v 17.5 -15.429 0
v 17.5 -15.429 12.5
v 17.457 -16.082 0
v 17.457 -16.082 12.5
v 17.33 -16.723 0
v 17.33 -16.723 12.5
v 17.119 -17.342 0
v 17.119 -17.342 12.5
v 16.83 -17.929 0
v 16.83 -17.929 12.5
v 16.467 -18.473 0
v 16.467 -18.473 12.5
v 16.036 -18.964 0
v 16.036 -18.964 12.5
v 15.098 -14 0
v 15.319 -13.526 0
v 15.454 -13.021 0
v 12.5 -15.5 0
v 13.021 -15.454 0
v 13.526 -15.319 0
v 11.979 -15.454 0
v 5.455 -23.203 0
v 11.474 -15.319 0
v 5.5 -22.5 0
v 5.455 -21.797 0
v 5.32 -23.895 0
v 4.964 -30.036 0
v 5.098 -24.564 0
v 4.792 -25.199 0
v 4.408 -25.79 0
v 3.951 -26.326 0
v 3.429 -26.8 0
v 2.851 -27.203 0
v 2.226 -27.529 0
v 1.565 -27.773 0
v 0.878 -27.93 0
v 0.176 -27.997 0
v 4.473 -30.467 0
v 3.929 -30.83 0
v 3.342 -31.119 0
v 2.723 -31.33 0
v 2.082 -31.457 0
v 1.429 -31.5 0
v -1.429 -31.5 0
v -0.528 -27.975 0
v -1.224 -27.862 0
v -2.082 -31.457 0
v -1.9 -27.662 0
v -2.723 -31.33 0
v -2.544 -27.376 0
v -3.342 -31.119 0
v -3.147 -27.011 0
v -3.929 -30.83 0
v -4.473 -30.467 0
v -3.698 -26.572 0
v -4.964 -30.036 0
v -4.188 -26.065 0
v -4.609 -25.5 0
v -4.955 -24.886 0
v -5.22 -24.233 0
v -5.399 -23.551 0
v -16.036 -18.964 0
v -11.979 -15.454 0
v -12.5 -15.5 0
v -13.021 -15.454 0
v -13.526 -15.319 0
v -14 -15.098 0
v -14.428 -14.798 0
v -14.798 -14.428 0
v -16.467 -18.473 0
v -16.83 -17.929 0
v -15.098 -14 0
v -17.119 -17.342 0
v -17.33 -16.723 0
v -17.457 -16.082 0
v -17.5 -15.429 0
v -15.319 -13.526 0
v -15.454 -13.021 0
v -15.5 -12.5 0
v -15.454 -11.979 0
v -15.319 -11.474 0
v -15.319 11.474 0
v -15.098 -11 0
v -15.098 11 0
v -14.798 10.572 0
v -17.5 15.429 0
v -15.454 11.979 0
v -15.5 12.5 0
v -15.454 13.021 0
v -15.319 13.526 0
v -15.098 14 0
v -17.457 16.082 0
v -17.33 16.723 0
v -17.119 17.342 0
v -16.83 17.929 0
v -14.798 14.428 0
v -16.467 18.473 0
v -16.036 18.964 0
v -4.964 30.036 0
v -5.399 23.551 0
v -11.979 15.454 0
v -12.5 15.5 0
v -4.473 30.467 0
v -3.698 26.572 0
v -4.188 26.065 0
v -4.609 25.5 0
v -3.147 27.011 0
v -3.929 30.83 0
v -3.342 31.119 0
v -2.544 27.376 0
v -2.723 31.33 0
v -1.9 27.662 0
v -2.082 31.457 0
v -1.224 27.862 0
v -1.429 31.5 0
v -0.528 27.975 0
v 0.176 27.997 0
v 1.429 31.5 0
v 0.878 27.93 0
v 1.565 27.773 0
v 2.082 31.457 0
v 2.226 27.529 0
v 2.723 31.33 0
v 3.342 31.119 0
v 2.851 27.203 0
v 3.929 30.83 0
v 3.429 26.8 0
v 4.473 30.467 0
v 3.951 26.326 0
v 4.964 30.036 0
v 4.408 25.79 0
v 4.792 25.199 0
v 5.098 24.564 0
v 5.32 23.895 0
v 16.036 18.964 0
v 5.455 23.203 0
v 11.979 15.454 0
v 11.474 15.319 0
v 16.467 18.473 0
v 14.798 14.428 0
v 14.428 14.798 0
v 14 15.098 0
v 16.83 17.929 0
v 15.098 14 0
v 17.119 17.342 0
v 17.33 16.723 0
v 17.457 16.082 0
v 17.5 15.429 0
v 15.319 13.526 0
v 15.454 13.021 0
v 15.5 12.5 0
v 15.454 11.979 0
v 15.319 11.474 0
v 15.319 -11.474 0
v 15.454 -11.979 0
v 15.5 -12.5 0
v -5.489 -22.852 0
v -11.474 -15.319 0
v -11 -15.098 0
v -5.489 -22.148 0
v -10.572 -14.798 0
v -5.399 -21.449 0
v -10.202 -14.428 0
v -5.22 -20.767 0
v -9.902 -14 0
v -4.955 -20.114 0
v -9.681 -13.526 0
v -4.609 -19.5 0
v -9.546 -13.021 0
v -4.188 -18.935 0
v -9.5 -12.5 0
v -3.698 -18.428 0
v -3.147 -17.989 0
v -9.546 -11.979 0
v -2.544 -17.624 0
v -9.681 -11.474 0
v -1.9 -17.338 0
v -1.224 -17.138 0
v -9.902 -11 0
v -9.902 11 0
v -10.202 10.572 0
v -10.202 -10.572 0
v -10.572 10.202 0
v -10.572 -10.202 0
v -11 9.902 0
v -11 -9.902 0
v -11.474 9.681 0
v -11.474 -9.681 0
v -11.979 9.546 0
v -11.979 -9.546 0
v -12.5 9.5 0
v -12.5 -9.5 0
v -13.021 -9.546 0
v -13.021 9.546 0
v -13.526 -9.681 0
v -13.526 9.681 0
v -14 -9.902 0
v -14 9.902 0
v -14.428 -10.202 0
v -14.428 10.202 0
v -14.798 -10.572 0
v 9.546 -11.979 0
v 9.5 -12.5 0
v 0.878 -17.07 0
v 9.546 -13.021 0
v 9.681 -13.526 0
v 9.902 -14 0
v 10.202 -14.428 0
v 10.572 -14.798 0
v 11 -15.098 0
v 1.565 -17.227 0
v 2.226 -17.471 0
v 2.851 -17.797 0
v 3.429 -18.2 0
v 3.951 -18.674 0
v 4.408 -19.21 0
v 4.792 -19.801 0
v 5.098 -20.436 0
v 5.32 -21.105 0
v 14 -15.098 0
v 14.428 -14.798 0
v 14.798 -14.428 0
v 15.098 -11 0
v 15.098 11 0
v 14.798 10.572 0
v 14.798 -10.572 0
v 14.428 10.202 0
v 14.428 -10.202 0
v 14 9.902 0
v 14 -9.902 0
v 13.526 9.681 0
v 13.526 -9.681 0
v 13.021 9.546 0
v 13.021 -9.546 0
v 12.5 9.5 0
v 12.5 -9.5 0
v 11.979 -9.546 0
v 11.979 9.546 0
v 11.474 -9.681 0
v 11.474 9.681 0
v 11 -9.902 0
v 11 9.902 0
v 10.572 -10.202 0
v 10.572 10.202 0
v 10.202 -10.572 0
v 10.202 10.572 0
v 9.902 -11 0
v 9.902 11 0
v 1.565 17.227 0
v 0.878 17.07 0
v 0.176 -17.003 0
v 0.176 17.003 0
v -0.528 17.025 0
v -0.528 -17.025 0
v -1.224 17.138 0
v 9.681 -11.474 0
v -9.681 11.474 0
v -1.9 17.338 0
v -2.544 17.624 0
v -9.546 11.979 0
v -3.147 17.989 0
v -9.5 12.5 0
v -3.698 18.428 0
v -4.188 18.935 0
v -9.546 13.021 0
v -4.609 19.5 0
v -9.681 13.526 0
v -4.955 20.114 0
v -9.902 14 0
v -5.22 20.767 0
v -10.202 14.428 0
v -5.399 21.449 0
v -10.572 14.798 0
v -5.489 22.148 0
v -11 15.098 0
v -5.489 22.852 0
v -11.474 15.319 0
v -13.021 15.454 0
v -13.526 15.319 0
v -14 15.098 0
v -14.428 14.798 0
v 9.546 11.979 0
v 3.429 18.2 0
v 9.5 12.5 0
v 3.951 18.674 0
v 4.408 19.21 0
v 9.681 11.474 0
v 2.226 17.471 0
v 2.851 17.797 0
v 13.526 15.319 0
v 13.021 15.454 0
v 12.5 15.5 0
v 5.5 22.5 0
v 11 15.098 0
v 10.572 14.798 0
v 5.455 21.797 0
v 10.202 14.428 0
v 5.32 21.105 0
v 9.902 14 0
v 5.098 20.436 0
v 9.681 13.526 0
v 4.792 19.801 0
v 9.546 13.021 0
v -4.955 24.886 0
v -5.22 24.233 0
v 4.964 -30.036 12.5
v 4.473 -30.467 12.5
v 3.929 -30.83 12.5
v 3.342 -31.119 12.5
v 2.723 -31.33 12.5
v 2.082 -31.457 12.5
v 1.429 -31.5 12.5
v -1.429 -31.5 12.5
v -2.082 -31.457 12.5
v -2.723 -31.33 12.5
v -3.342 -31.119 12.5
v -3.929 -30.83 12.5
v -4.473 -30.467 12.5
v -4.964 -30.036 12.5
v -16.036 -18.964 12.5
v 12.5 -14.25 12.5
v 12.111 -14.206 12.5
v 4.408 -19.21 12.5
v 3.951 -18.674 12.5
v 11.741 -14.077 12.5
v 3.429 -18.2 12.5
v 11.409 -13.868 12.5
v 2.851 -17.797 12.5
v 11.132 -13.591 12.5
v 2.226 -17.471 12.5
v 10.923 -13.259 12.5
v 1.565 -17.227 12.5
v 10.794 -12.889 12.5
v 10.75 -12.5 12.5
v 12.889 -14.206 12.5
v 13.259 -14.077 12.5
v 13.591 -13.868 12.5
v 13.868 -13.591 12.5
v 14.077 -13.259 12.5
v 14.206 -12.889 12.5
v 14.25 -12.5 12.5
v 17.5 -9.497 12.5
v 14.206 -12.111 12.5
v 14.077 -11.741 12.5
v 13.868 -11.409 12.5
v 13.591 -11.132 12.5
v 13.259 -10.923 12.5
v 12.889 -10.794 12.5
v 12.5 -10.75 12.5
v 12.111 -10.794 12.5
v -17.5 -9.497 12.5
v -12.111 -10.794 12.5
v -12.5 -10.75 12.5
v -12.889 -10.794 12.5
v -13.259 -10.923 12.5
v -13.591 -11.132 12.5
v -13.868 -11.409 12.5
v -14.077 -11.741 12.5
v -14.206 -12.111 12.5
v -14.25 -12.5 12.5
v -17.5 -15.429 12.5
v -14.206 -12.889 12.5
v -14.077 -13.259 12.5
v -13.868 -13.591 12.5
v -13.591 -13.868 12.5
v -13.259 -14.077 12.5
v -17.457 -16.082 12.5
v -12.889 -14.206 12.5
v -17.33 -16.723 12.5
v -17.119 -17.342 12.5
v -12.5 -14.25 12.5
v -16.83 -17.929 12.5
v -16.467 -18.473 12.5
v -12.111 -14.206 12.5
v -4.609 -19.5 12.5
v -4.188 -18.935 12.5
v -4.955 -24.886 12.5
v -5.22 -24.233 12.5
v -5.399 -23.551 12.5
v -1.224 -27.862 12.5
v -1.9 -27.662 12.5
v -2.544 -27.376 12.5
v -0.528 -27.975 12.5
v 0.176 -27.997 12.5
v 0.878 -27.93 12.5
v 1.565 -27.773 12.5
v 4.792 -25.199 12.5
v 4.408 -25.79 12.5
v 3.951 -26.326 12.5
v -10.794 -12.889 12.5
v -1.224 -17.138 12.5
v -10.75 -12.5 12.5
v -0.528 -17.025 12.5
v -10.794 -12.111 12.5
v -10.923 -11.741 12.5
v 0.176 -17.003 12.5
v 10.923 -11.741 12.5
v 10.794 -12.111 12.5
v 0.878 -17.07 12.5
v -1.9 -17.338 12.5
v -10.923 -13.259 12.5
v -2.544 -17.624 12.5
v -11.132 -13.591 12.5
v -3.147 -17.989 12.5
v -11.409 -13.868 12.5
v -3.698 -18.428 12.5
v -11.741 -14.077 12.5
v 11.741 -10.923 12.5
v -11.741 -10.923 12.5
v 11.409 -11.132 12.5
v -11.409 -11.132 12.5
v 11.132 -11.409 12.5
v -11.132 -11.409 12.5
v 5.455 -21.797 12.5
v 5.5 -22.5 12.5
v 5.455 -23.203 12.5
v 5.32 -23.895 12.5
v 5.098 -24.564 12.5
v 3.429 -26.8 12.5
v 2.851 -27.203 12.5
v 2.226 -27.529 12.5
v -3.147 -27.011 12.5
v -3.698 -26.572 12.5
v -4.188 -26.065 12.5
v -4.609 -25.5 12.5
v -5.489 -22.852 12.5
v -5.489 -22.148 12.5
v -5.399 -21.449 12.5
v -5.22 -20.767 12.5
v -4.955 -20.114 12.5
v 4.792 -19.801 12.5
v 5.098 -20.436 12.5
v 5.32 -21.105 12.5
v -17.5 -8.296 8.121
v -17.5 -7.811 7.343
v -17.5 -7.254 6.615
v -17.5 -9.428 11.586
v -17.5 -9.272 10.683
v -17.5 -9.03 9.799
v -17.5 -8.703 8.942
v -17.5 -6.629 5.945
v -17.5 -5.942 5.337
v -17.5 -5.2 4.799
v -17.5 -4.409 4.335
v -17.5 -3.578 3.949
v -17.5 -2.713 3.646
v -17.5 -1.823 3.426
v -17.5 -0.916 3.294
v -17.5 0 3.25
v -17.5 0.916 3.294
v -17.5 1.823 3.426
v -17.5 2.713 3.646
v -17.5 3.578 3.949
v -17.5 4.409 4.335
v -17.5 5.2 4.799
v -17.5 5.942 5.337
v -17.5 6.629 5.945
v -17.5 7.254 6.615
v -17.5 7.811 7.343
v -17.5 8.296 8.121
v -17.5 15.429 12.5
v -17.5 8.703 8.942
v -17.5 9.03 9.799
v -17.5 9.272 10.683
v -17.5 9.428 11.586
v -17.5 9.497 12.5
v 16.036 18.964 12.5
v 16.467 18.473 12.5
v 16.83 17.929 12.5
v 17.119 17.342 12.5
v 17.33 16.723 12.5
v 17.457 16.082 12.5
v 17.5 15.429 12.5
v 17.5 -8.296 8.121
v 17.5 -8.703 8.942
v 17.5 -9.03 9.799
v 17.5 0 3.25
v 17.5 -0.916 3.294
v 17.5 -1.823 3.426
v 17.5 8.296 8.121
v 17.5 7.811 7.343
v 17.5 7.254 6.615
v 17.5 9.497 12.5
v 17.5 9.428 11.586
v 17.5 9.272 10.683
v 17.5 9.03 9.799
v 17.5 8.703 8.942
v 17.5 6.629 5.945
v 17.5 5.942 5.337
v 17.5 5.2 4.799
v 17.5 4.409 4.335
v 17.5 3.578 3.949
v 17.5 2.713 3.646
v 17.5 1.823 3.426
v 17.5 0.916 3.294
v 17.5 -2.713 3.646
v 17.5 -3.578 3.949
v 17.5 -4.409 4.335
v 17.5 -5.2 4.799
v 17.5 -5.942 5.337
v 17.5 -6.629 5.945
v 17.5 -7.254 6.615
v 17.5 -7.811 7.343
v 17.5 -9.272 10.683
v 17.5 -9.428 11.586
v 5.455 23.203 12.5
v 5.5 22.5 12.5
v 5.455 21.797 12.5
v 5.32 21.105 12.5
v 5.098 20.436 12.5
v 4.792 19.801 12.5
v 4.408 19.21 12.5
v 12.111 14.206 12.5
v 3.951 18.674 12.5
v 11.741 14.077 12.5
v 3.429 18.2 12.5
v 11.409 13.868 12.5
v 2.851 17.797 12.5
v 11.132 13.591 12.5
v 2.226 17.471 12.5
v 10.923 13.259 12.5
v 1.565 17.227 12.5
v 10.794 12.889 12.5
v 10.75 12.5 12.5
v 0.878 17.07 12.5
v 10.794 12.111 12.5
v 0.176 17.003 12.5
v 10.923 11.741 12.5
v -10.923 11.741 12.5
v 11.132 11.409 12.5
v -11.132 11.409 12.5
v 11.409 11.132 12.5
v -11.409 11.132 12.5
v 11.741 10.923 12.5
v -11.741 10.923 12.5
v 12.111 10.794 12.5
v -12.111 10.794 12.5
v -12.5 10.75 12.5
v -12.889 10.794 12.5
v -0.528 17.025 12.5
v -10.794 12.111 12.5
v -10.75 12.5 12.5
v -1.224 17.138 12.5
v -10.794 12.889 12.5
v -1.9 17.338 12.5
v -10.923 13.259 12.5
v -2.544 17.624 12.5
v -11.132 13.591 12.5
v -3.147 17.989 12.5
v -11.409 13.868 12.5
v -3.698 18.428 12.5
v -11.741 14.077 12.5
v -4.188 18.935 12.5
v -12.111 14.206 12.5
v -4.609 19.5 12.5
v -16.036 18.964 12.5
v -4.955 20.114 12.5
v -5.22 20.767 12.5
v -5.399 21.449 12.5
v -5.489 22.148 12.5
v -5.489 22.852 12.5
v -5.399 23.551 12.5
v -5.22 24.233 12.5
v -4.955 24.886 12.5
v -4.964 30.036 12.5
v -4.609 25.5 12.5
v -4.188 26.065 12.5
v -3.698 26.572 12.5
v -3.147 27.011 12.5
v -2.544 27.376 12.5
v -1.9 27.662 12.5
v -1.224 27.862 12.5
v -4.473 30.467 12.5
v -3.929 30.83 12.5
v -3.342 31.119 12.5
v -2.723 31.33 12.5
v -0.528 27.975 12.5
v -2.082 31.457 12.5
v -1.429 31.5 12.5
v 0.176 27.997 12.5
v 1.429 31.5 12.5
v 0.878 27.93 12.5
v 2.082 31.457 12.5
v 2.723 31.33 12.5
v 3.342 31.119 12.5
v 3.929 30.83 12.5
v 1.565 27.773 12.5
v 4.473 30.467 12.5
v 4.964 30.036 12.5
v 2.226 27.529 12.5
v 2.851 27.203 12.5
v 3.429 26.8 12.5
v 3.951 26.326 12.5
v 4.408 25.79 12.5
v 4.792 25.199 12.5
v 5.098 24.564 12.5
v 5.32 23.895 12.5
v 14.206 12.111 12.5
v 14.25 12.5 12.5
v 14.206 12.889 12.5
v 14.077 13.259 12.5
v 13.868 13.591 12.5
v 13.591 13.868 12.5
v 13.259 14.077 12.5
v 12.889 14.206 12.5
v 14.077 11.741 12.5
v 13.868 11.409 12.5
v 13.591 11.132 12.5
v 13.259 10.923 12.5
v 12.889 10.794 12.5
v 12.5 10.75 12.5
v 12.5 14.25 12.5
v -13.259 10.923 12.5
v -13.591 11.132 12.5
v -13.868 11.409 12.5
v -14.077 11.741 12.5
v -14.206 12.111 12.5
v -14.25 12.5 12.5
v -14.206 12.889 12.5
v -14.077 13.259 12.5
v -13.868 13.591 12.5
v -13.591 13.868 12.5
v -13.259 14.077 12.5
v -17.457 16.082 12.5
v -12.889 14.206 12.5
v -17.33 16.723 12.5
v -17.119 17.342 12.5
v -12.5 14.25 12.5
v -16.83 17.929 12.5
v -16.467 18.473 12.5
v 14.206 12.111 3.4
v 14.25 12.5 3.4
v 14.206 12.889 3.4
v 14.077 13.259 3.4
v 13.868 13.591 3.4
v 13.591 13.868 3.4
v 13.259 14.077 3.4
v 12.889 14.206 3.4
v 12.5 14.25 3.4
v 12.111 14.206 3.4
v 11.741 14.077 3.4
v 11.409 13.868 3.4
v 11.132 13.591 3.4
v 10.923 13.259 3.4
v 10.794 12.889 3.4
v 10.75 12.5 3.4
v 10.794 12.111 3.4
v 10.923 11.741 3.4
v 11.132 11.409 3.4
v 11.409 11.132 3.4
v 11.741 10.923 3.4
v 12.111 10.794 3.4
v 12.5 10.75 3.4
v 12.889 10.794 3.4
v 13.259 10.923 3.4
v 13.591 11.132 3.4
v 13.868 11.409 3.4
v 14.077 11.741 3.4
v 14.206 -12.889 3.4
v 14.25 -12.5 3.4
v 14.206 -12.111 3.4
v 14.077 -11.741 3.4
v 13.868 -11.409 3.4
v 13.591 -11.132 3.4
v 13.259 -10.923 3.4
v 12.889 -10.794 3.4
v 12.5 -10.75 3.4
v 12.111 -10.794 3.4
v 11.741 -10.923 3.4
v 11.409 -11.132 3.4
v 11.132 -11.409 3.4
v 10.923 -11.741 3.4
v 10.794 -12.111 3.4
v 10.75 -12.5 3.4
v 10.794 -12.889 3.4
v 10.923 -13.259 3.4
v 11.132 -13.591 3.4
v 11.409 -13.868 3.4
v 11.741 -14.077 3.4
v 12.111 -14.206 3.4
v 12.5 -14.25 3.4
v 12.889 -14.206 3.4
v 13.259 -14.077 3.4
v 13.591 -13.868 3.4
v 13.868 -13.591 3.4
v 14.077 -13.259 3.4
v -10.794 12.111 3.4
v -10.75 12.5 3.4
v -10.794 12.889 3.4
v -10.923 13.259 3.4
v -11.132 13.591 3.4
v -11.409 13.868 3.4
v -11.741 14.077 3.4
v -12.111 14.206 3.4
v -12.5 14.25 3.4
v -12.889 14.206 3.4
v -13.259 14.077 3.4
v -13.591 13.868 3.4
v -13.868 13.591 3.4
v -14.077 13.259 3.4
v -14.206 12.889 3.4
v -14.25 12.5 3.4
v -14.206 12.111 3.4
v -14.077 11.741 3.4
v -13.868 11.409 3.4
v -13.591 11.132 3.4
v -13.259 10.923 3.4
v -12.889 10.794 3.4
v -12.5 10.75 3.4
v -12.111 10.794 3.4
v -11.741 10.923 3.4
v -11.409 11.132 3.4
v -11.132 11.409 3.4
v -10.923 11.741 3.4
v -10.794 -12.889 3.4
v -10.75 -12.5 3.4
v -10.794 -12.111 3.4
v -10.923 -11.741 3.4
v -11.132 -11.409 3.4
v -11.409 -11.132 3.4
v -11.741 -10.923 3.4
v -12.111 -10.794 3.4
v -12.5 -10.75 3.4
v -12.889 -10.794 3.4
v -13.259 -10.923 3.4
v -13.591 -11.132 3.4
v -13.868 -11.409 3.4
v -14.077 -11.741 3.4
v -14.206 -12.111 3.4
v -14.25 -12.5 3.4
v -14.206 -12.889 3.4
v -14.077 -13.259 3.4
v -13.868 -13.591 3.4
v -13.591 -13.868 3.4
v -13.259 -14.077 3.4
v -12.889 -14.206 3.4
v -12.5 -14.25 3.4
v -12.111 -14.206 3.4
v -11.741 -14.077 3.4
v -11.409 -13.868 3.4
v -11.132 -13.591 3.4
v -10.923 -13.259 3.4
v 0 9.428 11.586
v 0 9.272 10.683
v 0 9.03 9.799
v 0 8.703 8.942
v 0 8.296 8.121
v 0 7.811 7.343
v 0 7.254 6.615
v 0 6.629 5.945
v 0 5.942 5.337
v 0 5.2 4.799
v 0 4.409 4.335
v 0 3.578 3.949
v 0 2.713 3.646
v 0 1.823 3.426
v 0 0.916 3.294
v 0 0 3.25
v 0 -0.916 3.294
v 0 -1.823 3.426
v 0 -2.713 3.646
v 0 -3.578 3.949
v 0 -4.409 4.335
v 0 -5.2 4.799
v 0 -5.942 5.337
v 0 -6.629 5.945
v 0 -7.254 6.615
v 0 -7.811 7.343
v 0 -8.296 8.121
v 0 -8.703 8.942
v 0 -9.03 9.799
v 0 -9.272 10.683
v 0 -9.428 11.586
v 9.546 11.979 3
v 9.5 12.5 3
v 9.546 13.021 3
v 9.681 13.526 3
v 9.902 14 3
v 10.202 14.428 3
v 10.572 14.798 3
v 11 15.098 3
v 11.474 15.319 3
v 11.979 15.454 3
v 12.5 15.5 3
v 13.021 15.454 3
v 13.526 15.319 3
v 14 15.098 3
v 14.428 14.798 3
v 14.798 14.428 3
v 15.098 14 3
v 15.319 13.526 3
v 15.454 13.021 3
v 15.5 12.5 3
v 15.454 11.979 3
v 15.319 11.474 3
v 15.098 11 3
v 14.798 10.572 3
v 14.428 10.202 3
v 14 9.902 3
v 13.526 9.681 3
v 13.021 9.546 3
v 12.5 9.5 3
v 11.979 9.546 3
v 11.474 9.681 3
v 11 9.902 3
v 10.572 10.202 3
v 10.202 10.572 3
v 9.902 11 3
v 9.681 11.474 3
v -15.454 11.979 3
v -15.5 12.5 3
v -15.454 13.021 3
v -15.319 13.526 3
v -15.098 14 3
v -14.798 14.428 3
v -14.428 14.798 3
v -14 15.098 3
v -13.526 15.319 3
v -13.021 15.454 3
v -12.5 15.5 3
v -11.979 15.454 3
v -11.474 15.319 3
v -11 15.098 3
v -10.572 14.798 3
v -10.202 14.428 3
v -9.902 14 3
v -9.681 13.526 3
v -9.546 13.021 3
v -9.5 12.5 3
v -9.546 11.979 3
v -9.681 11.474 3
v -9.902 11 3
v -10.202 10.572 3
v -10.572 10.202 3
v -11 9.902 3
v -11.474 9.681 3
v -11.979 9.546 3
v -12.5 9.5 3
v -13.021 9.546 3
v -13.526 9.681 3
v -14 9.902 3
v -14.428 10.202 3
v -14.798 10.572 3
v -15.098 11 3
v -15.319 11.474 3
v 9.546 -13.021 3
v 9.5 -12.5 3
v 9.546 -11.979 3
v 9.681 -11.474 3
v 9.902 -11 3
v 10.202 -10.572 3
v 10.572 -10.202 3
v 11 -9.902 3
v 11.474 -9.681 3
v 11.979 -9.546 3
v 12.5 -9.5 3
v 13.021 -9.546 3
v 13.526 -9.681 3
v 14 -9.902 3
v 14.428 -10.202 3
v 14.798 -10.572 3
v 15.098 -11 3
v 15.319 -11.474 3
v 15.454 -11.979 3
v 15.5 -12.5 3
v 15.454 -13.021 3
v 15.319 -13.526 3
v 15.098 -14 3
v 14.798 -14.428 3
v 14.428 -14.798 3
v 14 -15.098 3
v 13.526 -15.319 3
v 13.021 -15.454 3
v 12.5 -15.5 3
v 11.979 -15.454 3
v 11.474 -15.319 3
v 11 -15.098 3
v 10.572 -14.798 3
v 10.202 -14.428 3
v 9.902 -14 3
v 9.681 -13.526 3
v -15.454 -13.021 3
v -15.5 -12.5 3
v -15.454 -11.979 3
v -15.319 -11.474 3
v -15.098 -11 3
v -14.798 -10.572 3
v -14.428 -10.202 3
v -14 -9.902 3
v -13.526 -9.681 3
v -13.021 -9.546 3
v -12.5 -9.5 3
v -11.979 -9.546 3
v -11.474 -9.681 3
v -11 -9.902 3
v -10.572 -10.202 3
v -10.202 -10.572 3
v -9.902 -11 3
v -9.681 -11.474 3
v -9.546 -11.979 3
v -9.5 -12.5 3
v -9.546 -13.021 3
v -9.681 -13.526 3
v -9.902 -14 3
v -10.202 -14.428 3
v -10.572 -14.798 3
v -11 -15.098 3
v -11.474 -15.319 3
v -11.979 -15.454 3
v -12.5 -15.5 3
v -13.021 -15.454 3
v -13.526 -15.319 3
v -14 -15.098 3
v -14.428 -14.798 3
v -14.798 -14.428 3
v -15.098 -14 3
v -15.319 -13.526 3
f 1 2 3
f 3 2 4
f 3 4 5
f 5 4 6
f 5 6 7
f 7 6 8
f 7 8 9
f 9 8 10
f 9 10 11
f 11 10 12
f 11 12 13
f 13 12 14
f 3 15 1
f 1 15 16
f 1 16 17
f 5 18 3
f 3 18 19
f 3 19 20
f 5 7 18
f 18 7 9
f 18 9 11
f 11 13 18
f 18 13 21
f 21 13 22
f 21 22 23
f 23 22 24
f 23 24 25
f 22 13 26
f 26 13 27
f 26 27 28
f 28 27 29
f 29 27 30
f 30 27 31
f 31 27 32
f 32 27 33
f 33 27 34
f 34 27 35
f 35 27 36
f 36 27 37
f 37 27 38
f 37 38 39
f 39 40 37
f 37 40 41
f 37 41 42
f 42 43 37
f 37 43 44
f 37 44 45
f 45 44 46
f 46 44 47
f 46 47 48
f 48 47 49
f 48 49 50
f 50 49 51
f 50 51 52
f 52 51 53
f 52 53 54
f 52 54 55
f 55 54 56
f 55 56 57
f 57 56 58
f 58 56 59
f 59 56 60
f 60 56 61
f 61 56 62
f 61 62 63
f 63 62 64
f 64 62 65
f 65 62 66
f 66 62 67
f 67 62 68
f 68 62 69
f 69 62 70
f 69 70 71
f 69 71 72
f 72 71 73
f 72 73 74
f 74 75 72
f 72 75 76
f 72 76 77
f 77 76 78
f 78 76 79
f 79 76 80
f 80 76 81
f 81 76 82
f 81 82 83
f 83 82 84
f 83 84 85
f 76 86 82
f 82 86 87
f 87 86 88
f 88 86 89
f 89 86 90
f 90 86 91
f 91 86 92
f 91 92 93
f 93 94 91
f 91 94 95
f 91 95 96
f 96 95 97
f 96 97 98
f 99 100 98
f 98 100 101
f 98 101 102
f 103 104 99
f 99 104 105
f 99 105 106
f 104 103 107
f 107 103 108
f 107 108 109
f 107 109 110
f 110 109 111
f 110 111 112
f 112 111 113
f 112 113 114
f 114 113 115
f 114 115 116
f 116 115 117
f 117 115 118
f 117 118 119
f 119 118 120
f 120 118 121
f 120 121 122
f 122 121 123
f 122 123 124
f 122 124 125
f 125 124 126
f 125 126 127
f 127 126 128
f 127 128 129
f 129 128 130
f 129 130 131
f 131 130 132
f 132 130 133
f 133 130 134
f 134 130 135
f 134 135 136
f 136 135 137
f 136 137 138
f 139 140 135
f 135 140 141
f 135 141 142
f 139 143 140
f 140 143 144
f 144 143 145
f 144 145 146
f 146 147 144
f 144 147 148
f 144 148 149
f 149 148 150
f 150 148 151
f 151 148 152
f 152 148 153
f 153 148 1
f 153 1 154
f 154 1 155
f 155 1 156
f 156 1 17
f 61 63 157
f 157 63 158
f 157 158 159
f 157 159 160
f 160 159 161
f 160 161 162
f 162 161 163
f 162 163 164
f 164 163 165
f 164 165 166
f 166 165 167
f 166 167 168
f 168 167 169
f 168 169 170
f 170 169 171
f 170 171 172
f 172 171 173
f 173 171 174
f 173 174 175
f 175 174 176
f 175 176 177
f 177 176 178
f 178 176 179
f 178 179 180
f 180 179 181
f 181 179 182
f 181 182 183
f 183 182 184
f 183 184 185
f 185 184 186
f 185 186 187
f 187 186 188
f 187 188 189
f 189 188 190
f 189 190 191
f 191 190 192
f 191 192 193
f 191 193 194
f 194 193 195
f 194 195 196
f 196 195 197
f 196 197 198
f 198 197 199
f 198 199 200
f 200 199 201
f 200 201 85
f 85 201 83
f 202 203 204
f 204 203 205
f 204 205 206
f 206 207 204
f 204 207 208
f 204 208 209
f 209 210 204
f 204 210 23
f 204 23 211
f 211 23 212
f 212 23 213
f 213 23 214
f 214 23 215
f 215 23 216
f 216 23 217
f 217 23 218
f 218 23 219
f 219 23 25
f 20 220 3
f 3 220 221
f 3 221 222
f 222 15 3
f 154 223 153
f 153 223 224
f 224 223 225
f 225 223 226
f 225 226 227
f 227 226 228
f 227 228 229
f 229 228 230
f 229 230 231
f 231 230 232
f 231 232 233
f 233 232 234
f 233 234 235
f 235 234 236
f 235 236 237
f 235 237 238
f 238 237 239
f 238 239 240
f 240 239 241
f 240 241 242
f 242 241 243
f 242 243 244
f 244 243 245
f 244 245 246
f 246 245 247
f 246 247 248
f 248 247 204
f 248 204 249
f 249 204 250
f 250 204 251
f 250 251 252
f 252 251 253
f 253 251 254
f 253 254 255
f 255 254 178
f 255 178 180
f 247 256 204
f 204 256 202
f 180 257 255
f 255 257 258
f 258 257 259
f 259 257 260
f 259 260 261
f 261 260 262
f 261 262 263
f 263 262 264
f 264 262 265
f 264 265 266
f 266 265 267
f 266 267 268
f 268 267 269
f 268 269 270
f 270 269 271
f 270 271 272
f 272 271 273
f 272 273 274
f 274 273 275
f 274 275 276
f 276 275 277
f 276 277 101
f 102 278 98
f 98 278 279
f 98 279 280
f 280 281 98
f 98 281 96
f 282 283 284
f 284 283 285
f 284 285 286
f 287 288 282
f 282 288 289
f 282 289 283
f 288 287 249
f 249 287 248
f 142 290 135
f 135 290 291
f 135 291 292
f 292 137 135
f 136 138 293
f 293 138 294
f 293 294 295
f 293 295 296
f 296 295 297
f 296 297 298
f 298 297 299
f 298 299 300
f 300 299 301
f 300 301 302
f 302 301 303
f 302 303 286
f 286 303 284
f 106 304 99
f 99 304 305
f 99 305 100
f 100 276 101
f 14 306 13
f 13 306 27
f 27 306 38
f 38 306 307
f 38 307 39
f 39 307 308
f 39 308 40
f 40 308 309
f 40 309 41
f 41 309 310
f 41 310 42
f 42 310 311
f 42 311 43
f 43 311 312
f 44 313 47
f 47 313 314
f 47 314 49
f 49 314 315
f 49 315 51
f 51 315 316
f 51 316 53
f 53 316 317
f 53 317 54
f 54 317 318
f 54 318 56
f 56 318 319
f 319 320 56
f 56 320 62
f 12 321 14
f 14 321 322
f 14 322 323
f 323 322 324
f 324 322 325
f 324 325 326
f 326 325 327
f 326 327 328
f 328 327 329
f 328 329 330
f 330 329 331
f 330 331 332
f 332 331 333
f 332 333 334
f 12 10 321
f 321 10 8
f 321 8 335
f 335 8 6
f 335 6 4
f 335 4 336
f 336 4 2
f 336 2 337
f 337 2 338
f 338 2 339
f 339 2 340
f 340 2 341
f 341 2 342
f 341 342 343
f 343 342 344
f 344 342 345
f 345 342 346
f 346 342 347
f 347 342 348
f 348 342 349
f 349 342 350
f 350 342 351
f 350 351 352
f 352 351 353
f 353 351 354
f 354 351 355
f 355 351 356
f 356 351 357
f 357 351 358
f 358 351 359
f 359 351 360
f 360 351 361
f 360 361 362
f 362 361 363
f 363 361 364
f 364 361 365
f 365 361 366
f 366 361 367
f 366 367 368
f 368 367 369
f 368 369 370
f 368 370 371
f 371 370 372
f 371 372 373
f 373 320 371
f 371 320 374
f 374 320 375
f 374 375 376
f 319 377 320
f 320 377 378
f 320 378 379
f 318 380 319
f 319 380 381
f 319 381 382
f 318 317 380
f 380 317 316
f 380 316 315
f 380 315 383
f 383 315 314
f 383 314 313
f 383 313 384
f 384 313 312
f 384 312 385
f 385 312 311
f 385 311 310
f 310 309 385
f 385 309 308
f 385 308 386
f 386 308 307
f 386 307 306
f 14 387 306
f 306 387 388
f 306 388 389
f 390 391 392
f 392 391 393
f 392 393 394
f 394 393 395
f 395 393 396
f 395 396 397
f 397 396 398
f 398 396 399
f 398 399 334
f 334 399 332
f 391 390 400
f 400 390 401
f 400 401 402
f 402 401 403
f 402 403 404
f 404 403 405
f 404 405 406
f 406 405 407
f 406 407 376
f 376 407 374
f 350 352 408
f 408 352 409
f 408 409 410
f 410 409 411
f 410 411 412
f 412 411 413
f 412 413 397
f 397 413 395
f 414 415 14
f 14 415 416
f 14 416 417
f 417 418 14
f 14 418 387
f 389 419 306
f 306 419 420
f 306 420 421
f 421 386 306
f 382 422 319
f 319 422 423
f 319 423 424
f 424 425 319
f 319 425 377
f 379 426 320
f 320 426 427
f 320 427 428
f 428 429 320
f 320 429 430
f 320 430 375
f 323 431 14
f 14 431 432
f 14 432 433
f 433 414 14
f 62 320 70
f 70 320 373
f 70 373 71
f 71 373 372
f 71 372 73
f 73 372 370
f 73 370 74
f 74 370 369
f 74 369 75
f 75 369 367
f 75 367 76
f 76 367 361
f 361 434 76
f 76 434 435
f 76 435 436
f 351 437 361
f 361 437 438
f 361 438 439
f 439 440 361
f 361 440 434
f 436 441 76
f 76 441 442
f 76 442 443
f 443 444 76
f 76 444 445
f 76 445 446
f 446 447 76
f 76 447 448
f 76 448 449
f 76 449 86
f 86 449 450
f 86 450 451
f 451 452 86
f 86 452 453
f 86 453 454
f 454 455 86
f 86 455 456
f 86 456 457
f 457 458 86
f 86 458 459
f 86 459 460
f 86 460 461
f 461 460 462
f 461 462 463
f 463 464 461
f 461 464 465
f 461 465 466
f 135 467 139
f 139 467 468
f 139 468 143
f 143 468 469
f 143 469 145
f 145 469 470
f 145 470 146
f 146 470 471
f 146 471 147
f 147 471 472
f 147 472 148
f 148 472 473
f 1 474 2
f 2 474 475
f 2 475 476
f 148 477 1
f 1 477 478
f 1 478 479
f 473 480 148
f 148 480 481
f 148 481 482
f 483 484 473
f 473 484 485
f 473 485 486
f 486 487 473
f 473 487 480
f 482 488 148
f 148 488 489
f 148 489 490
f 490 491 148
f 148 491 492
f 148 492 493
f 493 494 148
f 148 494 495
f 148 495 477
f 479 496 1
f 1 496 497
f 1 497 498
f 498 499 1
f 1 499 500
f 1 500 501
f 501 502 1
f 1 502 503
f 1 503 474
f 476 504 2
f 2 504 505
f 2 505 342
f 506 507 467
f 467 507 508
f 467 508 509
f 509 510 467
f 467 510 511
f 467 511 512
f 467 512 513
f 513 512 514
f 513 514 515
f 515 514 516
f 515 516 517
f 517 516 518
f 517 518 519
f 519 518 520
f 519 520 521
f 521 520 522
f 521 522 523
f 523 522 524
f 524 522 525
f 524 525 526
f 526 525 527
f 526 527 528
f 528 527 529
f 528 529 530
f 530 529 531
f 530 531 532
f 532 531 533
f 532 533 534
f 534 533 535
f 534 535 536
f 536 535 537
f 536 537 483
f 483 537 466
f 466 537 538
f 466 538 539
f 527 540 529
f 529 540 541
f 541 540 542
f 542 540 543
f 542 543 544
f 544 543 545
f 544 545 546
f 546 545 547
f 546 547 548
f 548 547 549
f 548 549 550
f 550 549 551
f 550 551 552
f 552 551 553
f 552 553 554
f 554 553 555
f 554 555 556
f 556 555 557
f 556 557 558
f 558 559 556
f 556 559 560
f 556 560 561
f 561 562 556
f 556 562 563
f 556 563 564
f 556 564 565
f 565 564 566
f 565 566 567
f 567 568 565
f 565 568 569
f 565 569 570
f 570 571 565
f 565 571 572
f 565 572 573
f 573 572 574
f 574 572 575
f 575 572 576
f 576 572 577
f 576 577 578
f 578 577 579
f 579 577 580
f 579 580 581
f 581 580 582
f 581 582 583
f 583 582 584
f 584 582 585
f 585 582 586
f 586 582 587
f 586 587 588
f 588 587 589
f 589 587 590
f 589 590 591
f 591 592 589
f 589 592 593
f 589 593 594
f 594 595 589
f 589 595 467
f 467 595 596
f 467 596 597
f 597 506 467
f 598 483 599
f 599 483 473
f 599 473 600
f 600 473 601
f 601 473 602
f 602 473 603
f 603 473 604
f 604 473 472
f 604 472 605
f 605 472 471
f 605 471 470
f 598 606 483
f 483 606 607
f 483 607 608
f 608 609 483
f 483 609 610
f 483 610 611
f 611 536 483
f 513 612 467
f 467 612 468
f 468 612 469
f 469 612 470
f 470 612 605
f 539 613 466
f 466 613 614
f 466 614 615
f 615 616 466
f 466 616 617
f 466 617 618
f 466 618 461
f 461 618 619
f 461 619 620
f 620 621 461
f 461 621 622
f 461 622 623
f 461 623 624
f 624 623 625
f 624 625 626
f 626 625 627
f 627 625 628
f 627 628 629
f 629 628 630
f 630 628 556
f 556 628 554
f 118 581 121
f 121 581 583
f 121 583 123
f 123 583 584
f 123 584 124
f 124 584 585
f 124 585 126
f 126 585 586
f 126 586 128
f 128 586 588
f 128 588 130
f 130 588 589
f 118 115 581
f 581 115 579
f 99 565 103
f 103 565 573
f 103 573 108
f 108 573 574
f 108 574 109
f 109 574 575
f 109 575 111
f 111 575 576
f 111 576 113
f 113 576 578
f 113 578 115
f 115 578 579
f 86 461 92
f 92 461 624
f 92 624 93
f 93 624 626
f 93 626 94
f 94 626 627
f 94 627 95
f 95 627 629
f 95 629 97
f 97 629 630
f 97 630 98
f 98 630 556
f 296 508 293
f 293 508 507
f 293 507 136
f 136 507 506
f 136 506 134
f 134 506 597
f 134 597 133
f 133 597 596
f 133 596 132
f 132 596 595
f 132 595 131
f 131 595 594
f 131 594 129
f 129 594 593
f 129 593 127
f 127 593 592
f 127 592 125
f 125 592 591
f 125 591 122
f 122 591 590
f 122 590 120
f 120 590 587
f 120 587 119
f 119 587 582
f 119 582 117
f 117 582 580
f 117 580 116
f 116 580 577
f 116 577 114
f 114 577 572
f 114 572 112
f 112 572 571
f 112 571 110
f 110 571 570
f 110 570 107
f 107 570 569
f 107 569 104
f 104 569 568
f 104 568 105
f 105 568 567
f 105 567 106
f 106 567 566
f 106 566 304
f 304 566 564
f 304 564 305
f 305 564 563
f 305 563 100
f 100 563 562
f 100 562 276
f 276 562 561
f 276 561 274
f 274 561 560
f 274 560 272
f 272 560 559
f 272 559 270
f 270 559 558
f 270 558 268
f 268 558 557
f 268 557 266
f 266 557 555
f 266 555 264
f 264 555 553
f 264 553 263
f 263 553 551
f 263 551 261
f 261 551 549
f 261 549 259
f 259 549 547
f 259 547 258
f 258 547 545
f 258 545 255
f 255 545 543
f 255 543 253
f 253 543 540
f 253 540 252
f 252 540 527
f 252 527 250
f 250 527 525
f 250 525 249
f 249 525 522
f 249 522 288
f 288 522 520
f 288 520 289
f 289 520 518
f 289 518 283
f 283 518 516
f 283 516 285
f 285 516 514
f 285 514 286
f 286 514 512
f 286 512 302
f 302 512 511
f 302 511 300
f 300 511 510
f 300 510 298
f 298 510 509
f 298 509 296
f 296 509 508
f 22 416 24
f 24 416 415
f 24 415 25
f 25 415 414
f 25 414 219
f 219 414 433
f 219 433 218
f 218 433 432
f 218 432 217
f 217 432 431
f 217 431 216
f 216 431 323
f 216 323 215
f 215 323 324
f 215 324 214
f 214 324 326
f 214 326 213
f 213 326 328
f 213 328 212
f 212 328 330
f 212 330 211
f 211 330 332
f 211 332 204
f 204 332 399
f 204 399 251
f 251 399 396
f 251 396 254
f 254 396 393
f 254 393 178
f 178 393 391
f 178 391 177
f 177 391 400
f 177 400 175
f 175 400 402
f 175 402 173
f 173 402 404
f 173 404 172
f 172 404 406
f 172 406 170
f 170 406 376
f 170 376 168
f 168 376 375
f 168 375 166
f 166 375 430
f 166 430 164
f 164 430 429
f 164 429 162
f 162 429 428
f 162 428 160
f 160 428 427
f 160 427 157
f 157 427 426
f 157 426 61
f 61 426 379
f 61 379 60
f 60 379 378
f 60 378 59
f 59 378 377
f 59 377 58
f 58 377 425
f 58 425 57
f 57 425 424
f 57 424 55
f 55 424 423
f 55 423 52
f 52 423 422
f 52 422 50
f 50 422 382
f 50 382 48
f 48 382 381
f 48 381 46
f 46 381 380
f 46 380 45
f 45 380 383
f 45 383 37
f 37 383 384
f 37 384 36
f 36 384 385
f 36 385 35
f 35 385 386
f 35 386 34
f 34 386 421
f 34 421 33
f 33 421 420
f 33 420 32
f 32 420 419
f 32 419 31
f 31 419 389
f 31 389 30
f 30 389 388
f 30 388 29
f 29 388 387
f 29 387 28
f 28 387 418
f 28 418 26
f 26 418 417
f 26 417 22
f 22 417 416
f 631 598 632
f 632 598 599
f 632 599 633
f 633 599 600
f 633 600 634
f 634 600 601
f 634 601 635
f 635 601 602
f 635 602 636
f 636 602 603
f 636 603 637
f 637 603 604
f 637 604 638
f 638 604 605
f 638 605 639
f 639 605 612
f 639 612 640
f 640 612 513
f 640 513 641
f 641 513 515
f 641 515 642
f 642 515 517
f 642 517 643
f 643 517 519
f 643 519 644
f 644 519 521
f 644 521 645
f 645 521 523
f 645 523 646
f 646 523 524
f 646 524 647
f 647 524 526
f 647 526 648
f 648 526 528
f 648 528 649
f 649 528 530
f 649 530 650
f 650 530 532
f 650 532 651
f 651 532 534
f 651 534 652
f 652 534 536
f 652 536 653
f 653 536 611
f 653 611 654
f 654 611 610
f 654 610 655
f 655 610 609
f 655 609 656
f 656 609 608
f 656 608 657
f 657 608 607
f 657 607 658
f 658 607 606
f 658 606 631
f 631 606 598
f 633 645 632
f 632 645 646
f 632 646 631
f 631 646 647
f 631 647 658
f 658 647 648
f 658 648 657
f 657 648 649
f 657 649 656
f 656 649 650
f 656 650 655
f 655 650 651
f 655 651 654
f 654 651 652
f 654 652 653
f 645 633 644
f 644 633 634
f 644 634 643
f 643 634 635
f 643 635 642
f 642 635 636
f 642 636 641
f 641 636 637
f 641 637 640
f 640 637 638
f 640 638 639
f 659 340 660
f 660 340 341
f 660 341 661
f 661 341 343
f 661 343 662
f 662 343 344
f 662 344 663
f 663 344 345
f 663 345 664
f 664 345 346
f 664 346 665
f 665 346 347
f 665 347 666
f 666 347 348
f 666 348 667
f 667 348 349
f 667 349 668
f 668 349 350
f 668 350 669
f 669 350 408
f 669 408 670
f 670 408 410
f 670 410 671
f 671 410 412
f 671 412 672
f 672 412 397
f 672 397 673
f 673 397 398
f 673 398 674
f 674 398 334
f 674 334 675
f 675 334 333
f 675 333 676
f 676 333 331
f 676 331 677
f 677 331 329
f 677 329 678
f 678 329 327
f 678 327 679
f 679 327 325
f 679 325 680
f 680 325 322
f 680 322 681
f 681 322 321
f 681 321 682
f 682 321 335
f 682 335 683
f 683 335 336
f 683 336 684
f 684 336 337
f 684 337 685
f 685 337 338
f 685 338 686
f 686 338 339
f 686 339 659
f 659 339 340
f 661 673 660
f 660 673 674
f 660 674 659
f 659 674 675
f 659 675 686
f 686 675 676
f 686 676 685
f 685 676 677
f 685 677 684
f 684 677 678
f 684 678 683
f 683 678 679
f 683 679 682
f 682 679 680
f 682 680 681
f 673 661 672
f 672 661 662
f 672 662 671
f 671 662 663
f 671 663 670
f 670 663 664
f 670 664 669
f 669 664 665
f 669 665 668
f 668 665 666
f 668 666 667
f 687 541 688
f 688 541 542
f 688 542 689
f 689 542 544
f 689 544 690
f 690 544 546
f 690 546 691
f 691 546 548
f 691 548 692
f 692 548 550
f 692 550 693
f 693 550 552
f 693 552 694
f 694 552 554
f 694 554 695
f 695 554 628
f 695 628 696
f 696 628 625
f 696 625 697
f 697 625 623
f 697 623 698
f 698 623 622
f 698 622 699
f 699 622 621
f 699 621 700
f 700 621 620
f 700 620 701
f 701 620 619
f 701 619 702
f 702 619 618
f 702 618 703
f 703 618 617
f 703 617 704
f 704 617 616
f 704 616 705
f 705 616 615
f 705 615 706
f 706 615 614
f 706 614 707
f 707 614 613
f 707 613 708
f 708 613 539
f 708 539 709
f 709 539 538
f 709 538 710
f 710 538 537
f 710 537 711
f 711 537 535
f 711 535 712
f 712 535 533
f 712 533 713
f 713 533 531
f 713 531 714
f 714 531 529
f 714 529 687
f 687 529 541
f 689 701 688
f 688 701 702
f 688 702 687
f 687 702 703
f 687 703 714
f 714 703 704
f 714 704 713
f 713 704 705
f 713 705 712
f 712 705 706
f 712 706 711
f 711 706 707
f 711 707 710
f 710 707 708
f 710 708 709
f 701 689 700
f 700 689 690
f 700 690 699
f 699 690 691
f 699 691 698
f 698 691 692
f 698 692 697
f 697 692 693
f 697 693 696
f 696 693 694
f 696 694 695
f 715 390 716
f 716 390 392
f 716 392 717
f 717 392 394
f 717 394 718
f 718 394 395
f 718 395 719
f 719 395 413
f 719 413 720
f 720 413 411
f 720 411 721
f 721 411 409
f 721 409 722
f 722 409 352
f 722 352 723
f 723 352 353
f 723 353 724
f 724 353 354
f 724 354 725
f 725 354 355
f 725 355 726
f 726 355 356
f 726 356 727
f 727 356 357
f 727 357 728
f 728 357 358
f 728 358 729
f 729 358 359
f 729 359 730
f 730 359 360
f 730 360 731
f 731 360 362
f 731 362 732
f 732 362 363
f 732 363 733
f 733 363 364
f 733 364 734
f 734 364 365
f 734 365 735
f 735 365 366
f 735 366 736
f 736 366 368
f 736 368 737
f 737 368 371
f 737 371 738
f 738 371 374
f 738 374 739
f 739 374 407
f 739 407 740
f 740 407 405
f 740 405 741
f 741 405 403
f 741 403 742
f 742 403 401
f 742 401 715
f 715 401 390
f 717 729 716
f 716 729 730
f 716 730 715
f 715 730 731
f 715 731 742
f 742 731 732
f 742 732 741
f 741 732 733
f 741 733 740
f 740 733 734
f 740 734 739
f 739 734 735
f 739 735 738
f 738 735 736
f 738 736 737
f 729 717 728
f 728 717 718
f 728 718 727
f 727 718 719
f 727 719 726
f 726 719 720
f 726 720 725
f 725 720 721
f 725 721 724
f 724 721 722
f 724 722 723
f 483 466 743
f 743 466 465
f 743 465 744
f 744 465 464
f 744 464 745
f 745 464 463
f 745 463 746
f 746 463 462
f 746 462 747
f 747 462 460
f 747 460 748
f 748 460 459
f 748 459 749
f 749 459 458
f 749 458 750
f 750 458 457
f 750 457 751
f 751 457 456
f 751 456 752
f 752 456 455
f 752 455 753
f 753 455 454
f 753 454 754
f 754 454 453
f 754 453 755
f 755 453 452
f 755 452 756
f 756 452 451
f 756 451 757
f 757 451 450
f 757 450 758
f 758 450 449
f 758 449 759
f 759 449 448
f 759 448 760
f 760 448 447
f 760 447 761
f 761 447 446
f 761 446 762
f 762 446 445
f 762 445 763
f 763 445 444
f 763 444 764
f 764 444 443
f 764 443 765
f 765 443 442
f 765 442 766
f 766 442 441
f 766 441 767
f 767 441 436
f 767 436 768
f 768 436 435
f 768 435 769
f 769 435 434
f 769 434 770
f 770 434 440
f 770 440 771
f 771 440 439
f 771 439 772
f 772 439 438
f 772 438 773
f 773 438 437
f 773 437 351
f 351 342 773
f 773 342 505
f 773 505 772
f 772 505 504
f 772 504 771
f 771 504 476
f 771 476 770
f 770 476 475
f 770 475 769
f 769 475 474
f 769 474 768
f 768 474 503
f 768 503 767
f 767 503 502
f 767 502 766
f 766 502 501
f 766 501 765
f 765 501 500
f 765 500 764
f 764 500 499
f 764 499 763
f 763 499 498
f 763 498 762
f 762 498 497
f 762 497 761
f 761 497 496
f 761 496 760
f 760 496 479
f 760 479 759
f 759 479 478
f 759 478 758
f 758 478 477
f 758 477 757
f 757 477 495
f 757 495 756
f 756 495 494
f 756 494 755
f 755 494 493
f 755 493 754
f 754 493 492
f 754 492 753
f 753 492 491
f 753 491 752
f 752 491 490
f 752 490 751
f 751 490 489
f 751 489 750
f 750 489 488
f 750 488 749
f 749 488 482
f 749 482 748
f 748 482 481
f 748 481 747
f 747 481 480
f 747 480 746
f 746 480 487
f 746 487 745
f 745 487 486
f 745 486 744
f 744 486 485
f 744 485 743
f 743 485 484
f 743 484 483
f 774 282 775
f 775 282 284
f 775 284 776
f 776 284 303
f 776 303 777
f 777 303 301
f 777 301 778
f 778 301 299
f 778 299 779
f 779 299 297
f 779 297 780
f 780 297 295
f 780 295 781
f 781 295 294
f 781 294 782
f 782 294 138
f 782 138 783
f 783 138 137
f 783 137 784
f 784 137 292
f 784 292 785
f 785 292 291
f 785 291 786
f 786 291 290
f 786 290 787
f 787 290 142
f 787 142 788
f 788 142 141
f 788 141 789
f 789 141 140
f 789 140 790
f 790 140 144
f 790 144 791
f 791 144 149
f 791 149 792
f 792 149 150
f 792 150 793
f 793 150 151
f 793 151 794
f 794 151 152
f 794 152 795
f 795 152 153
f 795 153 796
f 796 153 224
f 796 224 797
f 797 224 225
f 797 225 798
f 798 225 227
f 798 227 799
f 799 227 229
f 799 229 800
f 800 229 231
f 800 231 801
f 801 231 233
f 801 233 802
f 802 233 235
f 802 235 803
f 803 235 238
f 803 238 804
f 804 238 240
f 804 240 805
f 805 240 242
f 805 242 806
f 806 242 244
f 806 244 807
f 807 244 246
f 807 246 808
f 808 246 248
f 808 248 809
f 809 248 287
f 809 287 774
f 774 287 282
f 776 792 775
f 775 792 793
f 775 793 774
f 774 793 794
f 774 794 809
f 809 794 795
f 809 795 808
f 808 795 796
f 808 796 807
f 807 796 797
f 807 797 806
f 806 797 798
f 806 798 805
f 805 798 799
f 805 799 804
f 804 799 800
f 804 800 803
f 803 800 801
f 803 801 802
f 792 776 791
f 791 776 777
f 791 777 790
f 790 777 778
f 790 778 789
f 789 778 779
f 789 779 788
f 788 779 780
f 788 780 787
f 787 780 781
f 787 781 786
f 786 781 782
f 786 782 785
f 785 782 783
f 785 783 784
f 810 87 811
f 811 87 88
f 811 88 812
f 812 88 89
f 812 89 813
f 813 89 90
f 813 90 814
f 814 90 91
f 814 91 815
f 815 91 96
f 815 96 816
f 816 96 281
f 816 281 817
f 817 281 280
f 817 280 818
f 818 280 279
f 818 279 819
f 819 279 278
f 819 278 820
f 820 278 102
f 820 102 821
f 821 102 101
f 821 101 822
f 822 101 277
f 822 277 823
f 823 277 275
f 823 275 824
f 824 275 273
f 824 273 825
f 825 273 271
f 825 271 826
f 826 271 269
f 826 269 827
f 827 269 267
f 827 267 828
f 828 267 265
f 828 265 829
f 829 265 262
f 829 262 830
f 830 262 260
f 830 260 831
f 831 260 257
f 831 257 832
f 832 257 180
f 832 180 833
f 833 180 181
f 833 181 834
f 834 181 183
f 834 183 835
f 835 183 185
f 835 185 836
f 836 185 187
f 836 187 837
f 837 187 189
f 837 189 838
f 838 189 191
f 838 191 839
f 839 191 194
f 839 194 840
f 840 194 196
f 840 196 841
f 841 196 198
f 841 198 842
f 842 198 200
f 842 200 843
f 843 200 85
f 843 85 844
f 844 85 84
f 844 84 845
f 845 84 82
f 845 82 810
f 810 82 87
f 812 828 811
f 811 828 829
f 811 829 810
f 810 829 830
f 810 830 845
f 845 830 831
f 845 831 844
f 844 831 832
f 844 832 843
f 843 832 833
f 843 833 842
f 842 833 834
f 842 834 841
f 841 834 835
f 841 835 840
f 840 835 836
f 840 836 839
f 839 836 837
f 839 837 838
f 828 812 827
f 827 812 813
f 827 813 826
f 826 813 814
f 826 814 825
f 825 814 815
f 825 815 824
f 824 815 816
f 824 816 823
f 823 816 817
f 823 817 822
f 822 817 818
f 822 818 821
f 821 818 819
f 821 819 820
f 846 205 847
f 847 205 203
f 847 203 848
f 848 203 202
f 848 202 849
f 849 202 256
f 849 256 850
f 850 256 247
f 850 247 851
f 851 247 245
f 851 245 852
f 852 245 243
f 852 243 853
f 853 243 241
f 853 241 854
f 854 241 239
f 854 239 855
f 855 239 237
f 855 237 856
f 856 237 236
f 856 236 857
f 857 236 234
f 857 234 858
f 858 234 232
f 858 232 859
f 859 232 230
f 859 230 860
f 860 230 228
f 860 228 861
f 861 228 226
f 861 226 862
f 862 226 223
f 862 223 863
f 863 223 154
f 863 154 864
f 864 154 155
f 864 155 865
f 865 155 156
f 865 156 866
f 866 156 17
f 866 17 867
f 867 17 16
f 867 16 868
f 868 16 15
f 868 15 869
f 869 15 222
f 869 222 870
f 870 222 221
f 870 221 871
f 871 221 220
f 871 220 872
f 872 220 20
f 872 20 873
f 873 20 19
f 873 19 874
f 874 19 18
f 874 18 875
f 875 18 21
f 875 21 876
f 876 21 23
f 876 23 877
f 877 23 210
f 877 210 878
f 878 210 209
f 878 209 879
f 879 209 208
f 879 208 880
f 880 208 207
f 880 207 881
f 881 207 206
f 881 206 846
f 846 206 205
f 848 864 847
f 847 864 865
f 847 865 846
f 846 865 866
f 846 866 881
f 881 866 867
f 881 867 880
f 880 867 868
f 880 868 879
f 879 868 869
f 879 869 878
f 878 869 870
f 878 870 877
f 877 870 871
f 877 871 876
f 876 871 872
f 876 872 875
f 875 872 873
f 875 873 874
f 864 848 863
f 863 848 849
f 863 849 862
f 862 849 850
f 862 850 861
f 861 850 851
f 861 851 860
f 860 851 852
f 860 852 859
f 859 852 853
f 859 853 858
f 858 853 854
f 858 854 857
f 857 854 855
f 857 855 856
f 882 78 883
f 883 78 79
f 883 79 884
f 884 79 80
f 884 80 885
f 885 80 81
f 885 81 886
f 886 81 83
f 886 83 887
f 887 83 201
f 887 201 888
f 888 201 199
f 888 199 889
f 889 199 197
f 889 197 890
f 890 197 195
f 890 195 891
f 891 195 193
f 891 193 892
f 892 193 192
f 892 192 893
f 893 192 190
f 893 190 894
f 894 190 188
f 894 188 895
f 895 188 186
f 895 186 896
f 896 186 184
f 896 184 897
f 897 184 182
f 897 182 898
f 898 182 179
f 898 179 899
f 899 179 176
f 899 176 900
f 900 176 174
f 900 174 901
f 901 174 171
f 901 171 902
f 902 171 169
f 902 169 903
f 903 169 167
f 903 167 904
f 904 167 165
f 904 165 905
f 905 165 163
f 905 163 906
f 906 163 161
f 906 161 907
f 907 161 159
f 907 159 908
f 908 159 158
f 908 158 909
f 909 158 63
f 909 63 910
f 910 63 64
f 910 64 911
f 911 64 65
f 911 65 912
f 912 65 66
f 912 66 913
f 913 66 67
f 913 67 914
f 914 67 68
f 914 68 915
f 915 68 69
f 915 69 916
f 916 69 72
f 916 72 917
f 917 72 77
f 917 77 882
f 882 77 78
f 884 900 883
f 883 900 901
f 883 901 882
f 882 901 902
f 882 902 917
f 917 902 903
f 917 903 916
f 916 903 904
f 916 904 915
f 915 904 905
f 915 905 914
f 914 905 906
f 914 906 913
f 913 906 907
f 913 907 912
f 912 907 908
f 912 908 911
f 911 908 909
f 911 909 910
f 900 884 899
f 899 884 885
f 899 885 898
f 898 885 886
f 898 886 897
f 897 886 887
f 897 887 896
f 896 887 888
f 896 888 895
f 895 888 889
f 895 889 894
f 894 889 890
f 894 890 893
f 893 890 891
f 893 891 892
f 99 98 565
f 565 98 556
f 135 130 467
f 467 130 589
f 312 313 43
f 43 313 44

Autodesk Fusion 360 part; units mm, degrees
sketch "スケッチ1" plane through (0, 0, 0) normal (0, 0, 1) x (1, 0, 0)
  line L0 (-3.5, 31.5) -> (3.5, 31.5)
  line L1 (3.5, 31.5) -> (17.5, 17.5)
  line L2 (17.5, 17.5) -> (17.5, -17.5)
  line L3 (17.5, -17.5) -> (3.5, -31.5)
  line L4 (3.5, -31.5) -> (-3.5, -31.5)
  line L5 (-3.5, -31.5) -> (-17.5, -17.5)
  line L6 (-17.5, -17.5) -> (-17.5, 17.5)
  line L7 (-17.5, 17.5) -> (-3.5, 31.5)
  circle A0 centre (-12.5, 12.5) radius 3
  circle A1 centre (-12.5, -12.5) radius 3
  circle A2 centre (12.5, -12.5) radius 3
  circle A3 centre (12.5, 12.5) radius 3
  dimension "d1" = 35
  dimension "d2" = 63
  dimension "d3" = 31.5
  dimension "d4" = 17.5
  dimension "d5" = 14
  dimension "d6" = 14
  dimension "d7" = 14
  dimension "d8" = 14
  dimension "d9" = 14
  dimension "d10" = 14
  dimension "d11" = 14
  dimension "d12" = 14
  dimension "d13" = 6
  dimension "d14" = 12.5
  dimension "d15" = 12.5
  dimension "d17" = 360
extrude "押し出し1" add sketch "スケッチ1" along normal blind 12.5 contours L0 L1 L2 L3 L4 L5 L6 L7 | A0 | A1 | A2 | A3
extrude "押し出し2" cut sketch "スケッチ1" along normal blind 3 contours A0 | A1 | A2 | A3
sketch "スケッチ2" plane through (17.5, 0, 0) normal (1, 0, 0) x (0, 1, 0)
  line L0 (-17.5, 0) -> (17.5, 0)
  line L1 (17.5, 0) -> (17.5, 12.5)
  line L2 (17.5, 12.5) -> (-17.5, 12.5)
  line L3 (-17.5, 12.5) -> (-17.5, 0)
  circle A0 centre (0, 12.75) radius 9.5
  line L4 (17.5, 0) -> (-17.5, 0)
  dimension "d22" = 19
  dimension "d23" = 12.75
extrude "押し出し3" cut sketch "スケッチ2" against normal up to surface (35 mm away) contours L2 A0 picked at (1.5592, 9.8271)
sketch "スケッチ3" plane through (0, 0, 12.5) normal (0, 0, 1) x (-1, 0, 0)
  line L0 (17.5, -9.4967) -> (-17.5, -9.4967)
  line L1 (-17.5, -9.4967) -> (-17.5, -17.5)
  line L2 (-17.5, -17.5) -> (-3.5, -31.5)
  line L3 (-3.5, -31.5) -> (3.5, -31.5)
  line L4 (3.5, -31.5) -> (17.5, -17.5)
  line L5 (17.5, -17.5) -> (17.5, -9.4967)
  circle A0 centre (12.5, -12.5) radius 1.75
  circle A1 centre (12.5, 12.5) radius 1.75
  circle A2 centre (-12.5, 12.5) radius 1.75
  circle A3 centre (-12.5, -12.5) radius 1.75
  line L6 (-3.5, 31.5) -> (3.5, 31.5)
  line L7 (0, 31.5) -> (0, -31.5) construction
  circle A4 centre (0, 22.5) radius 5.5
  circle A5 centre (0, -22.5) radius 5.5
  point P0 (12.5, -12.5)
  dimension "d26" = 3.5
  dimension "d28" = 360
  dimension "d32" = 11
  dimension "d33" = 11
  dimension "d34" = 9
  dimension "d35" = 9
extrude "押し出し4" cut sketch "スケッチ3" against normal blind 9.1 contours A0 | A1 | A2 | A3
extrude "押し出し5" cut sketch "スケッチ3" against normal through all contours A4 | A5
fillet "フィレット1" radius 5 8 edges at (-17.5, 17.5, 6.25) (-3.5, 31.5, 6.25) (3.5, 31.5, 6.25) (17.5, 17.5, 6.25) (-17.5, -17.5, 6.25) (-3.5, -31.5, 6.25) (3.5, -31.5, 6.25) (17.5, -17.5, 6.25)
equation "d3 = d2 / 2"
equation "d4 = d1 / 2"
equation "d7 = d5"
equation "d8 = d6"
equation "d9 = d5"
equation "d10 = d7"
equation "d11 = d10"
equation "d12 = d9"
